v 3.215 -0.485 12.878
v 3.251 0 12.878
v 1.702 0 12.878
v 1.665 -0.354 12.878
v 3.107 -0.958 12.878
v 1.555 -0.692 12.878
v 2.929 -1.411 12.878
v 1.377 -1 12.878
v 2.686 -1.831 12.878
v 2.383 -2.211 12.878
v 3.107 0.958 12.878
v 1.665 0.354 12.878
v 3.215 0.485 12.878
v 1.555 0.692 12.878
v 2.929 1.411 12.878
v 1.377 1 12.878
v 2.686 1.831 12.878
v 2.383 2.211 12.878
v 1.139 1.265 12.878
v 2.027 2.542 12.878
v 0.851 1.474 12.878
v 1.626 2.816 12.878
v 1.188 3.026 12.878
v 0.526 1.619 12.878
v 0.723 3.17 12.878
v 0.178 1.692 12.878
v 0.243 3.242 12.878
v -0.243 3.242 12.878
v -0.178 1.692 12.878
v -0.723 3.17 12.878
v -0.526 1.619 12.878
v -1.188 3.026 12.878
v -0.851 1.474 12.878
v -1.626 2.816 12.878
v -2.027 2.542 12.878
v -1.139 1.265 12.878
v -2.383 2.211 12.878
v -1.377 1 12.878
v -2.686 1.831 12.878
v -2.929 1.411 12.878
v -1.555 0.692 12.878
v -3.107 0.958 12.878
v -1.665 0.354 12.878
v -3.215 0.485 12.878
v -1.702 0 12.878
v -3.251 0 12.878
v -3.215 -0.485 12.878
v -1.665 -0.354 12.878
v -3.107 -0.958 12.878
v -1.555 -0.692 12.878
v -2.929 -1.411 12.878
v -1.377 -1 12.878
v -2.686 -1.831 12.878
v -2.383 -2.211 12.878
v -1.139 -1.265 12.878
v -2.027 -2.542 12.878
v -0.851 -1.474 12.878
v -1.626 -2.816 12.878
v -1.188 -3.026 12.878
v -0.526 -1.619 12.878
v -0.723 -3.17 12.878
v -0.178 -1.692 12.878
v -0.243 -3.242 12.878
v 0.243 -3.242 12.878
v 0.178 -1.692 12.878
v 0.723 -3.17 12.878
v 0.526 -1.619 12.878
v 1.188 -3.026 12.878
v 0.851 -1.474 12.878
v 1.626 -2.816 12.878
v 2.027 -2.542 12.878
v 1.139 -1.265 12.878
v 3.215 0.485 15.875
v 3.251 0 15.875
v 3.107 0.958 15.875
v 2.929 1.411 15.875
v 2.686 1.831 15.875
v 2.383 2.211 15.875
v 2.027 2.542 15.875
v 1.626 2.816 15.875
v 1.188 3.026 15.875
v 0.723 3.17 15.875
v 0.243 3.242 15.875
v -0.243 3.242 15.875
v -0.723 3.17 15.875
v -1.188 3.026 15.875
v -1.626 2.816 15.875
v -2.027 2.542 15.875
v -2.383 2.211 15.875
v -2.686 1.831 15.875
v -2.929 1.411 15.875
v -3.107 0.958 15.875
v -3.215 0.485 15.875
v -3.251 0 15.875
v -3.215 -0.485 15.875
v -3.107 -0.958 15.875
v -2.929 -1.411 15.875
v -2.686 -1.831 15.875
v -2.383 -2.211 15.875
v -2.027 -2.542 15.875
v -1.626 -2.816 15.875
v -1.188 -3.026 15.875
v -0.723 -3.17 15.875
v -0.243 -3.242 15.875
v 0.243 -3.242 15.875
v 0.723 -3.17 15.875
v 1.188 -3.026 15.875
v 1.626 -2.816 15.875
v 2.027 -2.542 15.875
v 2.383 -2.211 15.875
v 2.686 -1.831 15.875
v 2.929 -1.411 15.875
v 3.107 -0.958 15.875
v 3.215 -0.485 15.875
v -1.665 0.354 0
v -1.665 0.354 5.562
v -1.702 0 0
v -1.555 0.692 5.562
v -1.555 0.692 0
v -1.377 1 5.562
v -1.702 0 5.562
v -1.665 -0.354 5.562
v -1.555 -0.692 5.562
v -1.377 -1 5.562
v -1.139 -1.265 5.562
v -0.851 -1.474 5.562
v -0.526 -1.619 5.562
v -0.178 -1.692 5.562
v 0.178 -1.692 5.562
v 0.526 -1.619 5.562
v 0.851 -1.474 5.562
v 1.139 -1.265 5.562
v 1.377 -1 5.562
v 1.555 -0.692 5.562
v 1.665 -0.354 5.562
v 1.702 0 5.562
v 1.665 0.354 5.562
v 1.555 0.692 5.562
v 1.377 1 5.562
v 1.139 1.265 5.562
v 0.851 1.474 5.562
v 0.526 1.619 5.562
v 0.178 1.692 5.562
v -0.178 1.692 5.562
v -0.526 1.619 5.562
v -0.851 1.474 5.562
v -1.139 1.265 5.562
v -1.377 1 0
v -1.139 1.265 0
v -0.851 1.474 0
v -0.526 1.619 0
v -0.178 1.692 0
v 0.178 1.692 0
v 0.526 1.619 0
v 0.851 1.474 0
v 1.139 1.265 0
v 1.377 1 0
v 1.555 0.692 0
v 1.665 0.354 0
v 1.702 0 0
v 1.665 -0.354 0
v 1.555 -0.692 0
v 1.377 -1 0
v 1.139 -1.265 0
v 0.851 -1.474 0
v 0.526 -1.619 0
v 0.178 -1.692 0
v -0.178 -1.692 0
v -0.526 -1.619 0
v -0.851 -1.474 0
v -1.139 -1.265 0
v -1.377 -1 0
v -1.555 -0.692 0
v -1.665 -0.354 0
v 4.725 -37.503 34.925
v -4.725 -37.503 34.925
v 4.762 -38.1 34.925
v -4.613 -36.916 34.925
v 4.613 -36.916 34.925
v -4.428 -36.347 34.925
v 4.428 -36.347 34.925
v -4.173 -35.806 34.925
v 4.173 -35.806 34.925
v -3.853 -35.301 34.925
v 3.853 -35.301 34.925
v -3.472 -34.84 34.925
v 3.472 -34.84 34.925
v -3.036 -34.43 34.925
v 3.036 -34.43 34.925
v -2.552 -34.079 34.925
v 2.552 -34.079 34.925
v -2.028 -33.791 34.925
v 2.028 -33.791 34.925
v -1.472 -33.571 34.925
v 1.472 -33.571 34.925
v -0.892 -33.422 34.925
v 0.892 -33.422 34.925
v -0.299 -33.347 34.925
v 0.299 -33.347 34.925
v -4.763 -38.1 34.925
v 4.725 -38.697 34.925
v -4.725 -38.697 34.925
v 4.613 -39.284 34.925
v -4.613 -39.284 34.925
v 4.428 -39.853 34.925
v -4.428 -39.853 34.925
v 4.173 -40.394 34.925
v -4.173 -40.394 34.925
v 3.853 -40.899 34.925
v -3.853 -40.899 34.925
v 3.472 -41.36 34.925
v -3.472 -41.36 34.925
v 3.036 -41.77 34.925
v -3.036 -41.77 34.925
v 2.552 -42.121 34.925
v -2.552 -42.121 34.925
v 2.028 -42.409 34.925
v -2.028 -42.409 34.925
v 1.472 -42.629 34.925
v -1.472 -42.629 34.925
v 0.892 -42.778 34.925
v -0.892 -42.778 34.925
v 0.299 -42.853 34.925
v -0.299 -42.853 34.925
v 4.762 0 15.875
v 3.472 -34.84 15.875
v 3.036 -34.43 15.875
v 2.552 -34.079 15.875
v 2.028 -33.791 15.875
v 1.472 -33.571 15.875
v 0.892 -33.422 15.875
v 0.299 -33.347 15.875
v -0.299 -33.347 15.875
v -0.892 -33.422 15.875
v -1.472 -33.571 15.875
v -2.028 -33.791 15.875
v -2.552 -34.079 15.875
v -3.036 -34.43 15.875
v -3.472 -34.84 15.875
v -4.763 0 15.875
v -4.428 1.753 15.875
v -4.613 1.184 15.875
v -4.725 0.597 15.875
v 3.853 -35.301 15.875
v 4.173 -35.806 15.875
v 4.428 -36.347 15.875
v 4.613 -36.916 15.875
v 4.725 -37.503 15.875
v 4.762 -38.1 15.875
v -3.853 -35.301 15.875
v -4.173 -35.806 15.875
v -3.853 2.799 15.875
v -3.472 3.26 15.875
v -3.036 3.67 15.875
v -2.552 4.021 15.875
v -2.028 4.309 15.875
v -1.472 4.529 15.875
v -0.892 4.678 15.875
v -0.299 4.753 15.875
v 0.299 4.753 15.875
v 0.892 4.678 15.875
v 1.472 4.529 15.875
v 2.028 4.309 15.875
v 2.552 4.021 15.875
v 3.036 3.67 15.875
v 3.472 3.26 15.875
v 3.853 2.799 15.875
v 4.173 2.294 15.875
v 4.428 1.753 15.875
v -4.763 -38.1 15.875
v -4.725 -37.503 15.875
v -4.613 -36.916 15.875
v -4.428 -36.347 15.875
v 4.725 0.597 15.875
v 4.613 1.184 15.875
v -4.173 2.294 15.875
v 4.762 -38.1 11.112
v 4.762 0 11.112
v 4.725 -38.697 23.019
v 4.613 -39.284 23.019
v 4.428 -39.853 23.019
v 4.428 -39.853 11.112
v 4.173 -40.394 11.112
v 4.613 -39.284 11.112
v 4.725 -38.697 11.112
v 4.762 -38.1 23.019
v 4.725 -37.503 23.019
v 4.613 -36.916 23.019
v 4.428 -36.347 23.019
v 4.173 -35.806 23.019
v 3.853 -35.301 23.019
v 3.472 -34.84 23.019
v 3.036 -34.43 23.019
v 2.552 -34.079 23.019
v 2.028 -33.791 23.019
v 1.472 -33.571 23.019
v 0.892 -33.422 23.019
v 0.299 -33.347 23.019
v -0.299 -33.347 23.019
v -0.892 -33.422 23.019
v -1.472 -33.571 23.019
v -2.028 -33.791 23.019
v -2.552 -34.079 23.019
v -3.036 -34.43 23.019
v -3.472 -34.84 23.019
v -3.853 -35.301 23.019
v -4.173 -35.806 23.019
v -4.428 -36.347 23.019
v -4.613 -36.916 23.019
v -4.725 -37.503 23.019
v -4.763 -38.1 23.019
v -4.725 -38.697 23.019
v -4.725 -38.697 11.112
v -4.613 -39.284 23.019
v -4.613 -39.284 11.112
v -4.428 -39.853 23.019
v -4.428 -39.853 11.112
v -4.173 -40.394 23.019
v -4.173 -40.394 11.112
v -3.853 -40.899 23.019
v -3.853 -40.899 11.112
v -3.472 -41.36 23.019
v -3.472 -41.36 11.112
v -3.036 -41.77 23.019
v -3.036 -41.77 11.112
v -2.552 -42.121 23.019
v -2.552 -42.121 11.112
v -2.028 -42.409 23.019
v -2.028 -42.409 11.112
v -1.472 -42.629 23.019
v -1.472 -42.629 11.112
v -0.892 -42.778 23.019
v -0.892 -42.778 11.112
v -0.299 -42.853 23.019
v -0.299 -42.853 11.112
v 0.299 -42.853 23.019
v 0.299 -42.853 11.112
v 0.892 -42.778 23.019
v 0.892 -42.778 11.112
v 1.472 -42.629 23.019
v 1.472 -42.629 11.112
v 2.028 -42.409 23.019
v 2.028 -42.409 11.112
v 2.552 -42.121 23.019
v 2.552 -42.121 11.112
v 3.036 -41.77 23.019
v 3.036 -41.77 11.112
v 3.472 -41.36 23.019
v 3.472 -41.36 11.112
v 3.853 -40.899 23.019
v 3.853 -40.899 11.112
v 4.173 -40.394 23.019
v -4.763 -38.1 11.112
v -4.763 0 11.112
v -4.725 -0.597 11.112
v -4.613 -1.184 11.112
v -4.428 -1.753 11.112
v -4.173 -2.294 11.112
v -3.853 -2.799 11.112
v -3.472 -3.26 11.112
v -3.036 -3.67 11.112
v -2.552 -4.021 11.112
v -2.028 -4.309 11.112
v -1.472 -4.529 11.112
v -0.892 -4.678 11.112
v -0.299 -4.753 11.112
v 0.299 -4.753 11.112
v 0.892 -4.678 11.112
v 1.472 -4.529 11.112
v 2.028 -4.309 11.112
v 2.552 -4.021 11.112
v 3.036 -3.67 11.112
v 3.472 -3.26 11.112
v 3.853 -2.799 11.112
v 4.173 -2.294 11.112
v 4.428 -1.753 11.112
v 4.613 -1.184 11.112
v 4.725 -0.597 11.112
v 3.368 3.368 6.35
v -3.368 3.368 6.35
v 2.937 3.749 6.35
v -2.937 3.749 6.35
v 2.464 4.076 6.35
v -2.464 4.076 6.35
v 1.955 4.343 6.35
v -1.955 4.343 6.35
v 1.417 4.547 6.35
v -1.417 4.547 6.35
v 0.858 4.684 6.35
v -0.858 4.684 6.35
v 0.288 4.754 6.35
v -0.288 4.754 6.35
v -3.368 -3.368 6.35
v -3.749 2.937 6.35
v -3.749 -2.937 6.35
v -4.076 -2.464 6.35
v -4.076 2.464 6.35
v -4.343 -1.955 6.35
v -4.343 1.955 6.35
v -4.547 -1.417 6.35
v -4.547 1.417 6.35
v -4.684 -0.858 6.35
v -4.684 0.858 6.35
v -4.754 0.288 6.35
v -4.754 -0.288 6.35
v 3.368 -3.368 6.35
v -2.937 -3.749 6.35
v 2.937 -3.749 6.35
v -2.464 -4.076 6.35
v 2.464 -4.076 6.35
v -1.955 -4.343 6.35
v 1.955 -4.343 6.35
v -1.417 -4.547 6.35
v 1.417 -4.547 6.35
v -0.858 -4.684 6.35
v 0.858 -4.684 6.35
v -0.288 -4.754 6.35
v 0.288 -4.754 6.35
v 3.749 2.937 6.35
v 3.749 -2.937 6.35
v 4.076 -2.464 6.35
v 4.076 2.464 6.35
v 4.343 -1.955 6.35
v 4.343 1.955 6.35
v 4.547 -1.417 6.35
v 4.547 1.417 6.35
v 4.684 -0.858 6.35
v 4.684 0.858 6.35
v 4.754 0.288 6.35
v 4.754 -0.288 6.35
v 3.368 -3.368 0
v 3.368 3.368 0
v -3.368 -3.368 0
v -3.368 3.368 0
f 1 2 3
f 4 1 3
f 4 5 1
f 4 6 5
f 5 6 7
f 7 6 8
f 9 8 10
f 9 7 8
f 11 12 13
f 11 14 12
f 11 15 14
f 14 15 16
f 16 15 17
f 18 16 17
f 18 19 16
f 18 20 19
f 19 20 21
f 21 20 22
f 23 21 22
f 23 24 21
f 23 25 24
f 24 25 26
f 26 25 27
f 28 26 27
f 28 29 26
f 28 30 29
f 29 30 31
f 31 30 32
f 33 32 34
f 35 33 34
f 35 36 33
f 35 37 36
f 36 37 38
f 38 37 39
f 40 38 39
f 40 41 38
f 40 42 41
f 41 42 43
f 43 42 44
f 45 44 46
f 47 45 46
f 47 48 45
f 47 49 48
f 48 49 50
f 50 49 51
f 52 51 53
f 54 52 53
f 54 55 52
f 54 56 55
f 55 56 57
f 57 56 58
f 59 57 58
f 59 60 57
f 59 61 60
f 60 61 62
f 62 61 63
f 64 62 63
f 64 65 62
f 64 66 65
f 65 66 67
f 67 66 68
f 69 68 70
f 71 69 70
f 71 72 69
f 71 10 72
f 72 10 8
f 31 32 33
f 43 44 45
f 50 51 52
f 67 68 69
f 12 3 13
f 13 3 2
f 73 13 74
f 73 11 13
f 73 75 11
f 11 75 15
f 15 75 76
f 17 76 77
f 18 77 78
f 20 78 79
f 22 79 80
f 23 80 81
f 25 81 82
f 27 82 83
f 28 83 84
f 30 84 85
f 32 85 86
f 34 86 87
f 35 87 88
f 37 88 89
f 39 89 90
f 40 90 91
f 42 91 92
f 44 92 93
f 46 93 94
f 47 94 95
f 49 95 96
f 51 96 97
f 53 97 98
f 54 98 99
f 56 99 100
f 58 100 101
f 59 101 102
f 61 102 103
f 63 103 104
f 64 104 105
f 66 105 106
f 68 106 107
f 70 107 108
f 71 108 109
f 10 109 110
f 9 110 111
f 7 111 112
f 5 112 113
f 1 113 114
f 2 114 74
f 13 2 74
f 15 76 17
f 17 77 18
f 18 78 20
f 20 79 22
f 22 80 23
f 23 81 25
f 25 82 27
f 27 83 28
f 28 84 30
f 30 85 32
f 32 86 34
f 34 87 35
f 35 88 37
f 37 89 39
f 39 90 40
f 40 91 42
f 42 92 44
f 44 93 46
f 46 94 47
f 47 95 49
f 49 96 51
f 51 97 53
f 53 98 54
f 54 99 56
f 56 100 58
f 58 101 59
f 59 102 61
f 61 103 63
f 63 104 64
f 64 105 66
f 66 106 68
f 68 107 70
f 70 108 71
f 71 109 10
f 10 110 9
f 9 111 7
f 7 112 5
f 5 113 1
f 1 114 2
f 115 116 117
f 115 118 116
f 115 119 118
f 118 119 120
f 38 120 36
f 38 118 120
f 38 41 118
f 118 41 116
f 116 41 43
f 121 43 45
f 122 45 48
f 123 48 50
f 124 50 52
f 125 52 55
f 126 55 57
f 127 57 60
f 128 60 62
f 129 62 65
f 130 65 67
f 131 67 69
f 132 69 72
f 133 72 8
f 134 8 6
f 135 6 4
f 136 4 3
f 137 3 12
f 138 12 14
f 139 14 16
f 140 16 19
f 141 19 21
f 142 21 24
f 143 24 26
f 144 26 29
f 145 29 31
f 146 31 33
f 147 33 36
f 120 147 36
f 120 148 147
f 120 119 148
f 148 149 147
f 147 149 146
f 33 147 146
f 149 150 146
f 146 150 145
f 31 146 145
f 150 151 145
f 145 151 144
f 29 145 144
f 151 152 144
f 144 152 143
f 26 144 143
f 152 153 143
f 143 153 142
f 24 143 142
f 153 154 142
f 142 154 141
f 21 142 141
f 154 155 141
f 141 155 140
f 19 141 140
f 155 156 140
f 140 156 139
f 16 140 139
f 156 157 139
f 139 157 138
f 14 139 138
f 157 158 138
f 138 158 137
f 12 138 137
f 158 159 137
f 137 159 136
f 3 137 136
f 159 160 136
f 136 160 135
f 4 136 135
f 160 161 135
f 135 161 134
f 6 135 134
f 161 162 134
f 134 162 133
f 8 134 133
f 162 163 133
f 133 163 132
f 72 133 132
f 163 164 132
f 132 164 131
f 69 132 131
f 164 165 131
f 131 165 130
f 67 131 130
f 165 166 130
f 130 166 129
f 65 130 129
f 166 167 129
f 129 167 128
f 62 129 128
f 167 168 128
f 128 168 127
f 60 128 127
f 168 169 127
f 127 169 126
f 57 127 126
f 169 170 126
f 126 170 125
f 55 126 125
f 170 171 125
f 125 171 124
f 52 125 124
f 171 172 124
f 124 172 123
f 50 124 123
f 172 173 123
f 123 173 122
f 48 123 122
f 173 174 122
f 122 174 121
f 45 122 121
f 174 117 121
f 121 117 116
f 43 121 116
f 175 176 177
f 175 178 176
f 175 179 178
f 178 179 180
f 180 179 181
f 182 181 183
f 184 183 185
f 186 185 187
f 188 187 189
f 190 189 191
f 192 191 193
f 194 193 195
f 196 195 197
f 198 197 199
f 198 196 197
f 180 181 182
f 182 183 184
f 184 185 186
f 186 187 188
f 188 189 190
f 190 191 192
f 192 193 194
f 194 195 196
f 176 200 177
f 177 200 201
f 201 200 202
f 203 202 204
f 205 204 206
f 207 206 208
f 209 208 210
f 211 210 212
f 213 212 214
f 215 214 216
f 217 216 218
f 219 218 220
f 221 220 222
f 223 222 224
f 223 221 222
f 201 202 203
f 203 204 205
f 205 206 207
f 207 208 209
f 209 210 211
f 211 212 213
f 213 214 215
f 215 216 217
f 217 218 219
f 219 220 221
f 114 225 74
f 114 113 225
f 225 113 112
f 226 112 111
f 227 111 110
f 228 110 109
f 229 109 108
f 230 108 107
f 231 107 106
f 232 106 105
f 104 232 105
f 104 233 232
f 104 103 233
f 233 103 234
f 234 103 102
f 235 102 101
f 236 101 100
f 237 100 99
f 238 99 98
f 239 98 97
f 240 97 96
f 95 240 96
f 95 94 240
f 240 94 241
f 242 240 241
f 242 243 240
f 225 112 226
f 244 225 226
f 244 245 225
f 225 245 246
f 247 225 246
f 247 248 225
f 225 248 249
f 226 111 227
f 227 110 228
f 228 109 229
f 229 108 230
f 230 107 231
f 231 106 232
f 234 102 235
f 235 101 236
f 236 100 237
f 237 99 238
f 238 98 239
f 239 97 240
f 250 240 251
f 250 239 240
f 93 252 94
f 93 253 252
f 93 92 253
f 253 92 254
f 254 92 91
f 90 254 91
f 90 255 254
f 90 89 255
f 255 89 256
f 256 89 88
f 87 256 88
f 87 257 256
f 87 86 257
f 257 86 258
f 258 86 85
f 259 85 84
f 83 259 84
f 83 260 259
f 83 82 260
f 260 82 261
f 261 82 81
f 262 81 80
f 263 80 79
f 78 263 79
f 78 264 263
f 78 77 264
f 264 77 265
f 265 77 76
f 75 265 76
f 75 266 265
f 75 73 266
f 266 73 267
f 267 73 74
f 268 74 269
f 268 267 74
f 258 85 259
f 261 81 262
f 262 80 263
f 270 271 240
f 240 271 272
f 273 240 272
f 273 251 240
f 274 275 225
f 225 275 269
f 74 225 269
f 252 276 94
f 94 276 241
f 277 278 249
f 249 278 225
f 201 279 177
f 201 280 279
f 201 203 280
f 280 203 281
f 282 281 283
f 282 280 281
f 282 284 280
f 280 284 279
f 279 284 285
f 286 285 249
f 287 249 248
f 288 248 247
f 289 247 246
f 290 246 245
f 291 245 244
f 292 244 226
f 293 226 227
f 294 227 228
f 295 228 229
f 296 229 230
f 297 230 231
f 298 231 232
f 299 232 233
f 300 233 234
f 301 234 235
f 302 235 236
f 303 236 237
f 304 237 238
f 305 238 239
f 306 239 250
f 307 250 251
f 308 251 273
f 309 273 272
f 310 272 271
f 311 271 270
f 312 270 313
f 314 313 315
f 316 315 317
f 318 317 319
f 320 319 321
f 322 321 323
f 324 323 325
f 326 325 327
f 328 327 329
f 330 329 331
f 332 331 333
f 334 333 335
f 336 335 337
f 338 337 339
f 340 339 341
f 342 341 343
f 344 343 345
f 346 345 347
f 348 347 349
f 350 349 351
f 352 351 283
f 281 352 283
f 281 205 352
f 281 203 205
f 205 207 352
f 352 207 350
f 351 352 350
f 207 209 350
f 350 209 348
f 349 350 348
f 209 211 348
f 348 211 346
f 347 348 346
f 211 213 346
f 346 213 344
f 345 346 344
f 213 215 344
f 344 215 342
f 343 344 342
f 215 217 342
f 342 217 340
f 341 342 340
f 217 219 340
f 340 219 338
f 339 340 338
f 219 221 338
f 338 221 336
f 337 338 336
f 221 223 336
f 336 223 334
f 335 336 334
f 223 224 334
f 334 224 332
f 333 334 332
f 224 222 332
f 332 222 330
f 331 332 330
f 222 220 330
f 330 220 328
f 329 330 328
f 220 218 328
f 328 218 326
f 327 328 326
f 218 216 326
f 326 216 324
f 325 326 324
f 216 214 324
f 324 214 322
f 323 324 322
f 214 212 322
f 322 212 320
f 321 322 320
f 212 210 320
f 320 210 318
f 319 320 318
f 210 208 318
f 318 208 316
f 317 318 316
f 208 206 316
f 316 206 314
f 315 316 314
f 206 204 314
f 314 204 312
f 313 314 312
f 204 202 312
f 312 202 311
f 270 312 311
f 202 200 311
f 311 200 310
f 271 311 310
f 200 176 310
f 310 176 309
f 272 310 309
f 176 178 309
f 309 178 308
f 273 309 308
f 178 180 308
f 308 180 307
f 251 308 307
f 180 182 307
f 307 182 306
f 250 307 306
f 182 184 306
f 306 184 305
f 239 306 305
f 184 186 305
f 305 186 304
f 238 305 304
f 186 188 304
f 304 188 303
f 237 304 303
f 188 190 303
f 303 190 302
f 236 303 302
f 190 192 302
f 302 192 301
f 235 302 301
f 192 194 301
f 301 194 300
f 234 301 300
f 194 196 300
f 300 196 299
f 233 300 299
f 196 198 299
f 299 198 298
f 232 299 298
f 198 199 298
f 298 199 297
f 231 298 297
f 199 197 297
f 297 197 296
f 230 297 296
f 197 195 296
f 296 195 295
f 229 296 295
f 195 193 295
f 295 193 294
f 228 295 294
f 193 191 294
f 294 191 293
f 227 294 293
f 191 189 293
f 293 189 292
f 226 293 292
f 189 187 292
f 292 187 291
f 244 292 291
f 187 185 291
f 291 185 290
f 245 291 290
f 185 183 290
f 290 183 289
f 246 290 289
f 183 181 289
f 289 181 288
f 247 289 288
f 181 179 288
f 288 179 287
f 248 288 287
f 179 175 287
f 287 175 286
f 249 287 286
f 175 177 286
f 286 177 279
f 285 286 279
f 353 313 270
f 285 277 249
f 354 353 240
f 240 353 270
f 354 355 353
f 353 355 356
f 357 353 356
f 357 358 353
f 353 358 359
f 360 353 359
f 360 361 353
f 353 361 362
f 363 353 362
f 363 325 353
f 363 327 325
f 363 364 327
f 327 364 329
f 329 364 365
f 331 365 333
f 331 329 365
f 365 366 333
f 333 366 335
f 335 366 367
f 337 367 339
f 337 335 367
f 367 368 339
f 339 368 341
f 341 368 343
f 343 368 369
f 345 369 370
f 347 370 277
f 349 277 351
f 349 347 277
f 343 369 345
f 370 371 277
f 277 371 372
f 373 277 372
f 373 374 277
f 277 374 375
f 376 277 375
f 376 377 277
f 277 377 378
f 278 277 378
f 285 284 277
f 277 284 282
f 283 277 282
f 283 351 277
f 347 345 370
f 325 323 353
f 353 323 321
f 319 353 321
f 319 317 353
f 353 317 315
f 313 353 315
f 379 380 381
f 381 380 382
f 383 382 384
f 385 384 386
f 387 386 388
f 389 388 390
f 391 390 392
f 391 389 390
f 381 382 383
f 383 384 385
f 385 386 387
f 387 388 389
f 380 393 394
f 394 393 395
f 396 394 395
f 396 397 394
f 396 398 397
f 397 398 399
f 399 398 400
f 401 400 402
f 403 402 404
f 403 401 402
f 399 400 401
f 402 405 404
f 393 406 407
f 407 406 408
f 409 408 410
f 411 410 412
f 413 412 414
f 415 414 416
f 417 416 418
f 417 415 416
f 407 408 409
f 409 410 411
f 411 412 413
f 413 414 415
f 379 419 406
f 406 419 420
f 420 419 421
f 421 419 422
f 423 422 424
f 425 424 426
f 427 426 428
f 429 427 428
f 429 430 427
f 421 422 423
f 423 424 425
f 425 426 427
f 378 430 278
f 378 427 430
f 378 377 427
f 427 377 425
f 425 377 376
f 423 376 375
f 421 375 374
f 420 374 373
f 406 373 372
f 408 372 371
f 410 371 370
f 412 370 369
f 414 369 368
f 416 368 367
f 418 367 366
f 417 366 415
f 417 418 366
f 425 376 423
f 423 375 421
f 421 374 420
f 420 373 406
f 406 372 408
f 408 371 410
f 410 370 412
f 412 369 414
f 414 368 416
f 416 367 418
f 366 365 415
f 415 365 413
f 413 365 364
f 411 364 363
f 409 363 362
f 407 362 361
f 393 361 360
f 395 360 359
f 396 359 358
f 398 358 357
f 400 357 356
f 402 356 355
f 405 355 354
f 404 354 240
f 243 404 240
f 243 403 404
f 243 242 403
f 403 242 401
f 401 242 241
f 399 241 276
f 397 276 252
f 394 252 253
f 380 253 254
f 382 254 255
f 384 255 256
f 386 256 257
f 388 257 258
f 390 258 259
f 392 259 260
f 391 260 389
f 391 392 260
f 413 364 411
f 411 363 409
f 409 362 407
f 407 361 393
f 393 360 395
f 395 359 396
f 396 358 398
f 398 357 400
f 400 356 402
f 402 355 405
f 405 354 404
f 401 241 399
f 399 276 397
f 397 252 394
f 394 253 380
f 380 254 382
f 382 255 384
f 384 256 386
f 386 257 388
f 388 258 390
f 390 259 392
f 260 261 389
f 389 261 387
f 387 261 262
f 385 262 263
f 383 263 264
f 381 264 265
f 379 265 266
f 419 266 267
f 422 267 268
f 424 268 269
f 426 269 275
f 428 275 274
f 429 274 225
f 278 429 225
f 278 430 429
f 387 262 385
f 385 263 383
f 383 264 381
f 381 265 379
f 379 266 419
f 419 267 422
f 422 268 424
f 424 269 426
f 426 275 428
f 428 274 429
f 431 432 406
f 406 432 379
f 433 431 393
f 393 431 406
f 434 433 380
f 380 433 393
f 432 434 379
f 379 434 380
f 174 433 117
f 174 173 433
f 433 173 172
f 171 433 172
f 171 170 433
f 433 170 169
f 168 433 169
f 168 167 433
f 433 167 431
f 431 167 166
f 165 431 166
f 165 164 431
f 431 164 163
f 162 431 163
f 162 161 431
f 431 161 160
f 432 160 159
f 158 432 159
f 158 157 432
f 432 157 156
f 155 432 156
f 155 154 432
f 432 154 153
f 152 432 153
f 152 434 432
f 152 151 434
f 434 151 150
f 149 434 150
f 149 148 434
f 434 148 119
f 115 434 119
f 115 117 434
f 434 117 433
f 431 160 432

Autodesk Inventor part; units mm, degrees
ref_plane "YZ Plane" through (0, 0, 0) normal (1, 0, 0) x (0, 1, 0)
ref_plane "XZ Plane" through (0, 0, 0) normal (0, 1, 0) x (-1, 0, 0)
ref_plane "XY Plane" through (0, 0, 0) normal (0, 0, 1) x (1, 0, 0)
sketch "Sketch1" plane through (0, 0, 0) normal (0, 0, 1) x (1, 0, 0)
  line L0 (-3.3676, 3.3676) -> (3.3676, 3.3676)
  line L1 (3.3676, 3.3676) -> (3.3676, -3.3676)
  line L2 (3.3676, -3.3676) -> (-3.3676, -3.3676)
  line L3 (-3.3676, -3.3676) -> (-3.3676, 3.3676)
  line L4 (-3.3676, 3.3676) -> (3.3676, -3.3676) construction
  line L5 (3.3676, 3.3676) -> (-3.3676, -3.3676) construction
  point P0 (0, 0)
  dimension "d0" = 6.7352
extrude "Extrusion1" add sketch "Sketch1" along normal blind 6.35
sketch "Sketch2" plane through (0, 0, 6.35) normal (0, 0, 1) x (1, 0, 0)
  line L0 (3.3676, -3.3676) -> (3.3676, 3.3676) projected
  line L1 (-3.3676, -3.3676) -> (3.3676, -3.3676) projected
  line L2 (3.3676, 3.3676) -> (-3.3676, 3.3676) projected
  line L3 (-3.3676, 3.3676) -> (-3.3676, -3.3676) projected
  circle A0 centre (0, 0) radius 4.7625
extrude "Extrusion2" add sketch "Sketch2" along normal blind 4.7625
sketch "Sketch3" plane through (0, 0, 11.1125) normal (0, 0, 1) x (1, 0, 0)
  circle A0 centre (0, 0) radius 4.7625 projected
  line L0 (0, 0) -> (0, -38.1) construction
  line L1 (-4.7625, 0) -> (-4.7625, -38.1)
  line L2 (4.7625, -38.1) -> (4.7625, 0)
  arc A1 (4.7625, 0) -> (-4.7625, 0) centre (0, 0) ccw
  arc A2 (-4.7625, -38.1) -> (4.7625, -38.1) centre (0, -38.1) ccw
  circle A3 centre (0, 0) radius 4.7625 projected
  point P0 (0, -19.05)
  dimension "d5" = 38.1
extrude "Extrusion3" add sketch "Sketch3" along normal blind 4.7625
sketch "Sketch4" plane through (0, 0, 15.875) normal (0, 0, 1) x (1, 0, 0)
  circle A0 centre (0, -38.1) radius 4.7625
  line L0 (4.7625, 0) -> (4.7625, -38.1) projected
  arc A1 (-4.7625, -38.1) -> (4.7625, -38.1) centre (0, -38.1) ccw projected
  line L1 (-4.7625, -38.1) -> (-4.7625, 0) projected
  arc A2 (4.7625, 0) -> (-4.7625, 0) centre (0, 0) ccw projected
  arc A3 (-4.7625, -38.1) -> (4.7625, -38.1) centre (0, -38.1) ccw projected
extrude "Extrusion4" add sketch "Sketch4" along normal blind 19.05 contours A0
sketch "Sketch5" plane through (-3.3676, -3.3676, 0) normal (-1, 0, 0) x (0, 0, 1)
  point P0 (0, 3.3676)
sketch "Sketch6" plane through (0, 0, 15.875) normal (0, 0, 1) x (1, 0, 0)
  circle A0 centre (0, 0) radius 4.7625
  line L0 (4.7625, 0) -> (4.7625, -38.1) projected
  arc A1 (-4.7625, -38.1) -> (4.7625, -38.1) centre (0, -38.1) ccw projected
  arc A2 (4.7625, -38.1) -> (-4.7625, -38.1) centre (0, -38.1) ccw projected
  arc A3 (4.7625, 0) -> (-4.7625, 0) centre (0, 0) ccw projected
  line L1 (-4.7625, -38.1) -> (-4.7625, 0) projected
hole "Hole1" at (0, 0, 15.875) direction (0, 0, -1) diameter 3.4036 end through all counterbore diameter 6.5024 counterbore depth 2.9972 clearance for "Socket Head Cap Screw" size "M3" standard "Ansi Metric M Profile"
equation "\"d0\" = l_key"
equation "\"d1\" = d_key"
equation "\"d6\" = t"
equation "\"d8\" = 4 * t"
equation "\"l_key\" = 6.735192"
equation "\"d_key\" = 6.35"
equation "\"t\" = 4.7625"
properties part number "Crank" material "ABS Plastic"
